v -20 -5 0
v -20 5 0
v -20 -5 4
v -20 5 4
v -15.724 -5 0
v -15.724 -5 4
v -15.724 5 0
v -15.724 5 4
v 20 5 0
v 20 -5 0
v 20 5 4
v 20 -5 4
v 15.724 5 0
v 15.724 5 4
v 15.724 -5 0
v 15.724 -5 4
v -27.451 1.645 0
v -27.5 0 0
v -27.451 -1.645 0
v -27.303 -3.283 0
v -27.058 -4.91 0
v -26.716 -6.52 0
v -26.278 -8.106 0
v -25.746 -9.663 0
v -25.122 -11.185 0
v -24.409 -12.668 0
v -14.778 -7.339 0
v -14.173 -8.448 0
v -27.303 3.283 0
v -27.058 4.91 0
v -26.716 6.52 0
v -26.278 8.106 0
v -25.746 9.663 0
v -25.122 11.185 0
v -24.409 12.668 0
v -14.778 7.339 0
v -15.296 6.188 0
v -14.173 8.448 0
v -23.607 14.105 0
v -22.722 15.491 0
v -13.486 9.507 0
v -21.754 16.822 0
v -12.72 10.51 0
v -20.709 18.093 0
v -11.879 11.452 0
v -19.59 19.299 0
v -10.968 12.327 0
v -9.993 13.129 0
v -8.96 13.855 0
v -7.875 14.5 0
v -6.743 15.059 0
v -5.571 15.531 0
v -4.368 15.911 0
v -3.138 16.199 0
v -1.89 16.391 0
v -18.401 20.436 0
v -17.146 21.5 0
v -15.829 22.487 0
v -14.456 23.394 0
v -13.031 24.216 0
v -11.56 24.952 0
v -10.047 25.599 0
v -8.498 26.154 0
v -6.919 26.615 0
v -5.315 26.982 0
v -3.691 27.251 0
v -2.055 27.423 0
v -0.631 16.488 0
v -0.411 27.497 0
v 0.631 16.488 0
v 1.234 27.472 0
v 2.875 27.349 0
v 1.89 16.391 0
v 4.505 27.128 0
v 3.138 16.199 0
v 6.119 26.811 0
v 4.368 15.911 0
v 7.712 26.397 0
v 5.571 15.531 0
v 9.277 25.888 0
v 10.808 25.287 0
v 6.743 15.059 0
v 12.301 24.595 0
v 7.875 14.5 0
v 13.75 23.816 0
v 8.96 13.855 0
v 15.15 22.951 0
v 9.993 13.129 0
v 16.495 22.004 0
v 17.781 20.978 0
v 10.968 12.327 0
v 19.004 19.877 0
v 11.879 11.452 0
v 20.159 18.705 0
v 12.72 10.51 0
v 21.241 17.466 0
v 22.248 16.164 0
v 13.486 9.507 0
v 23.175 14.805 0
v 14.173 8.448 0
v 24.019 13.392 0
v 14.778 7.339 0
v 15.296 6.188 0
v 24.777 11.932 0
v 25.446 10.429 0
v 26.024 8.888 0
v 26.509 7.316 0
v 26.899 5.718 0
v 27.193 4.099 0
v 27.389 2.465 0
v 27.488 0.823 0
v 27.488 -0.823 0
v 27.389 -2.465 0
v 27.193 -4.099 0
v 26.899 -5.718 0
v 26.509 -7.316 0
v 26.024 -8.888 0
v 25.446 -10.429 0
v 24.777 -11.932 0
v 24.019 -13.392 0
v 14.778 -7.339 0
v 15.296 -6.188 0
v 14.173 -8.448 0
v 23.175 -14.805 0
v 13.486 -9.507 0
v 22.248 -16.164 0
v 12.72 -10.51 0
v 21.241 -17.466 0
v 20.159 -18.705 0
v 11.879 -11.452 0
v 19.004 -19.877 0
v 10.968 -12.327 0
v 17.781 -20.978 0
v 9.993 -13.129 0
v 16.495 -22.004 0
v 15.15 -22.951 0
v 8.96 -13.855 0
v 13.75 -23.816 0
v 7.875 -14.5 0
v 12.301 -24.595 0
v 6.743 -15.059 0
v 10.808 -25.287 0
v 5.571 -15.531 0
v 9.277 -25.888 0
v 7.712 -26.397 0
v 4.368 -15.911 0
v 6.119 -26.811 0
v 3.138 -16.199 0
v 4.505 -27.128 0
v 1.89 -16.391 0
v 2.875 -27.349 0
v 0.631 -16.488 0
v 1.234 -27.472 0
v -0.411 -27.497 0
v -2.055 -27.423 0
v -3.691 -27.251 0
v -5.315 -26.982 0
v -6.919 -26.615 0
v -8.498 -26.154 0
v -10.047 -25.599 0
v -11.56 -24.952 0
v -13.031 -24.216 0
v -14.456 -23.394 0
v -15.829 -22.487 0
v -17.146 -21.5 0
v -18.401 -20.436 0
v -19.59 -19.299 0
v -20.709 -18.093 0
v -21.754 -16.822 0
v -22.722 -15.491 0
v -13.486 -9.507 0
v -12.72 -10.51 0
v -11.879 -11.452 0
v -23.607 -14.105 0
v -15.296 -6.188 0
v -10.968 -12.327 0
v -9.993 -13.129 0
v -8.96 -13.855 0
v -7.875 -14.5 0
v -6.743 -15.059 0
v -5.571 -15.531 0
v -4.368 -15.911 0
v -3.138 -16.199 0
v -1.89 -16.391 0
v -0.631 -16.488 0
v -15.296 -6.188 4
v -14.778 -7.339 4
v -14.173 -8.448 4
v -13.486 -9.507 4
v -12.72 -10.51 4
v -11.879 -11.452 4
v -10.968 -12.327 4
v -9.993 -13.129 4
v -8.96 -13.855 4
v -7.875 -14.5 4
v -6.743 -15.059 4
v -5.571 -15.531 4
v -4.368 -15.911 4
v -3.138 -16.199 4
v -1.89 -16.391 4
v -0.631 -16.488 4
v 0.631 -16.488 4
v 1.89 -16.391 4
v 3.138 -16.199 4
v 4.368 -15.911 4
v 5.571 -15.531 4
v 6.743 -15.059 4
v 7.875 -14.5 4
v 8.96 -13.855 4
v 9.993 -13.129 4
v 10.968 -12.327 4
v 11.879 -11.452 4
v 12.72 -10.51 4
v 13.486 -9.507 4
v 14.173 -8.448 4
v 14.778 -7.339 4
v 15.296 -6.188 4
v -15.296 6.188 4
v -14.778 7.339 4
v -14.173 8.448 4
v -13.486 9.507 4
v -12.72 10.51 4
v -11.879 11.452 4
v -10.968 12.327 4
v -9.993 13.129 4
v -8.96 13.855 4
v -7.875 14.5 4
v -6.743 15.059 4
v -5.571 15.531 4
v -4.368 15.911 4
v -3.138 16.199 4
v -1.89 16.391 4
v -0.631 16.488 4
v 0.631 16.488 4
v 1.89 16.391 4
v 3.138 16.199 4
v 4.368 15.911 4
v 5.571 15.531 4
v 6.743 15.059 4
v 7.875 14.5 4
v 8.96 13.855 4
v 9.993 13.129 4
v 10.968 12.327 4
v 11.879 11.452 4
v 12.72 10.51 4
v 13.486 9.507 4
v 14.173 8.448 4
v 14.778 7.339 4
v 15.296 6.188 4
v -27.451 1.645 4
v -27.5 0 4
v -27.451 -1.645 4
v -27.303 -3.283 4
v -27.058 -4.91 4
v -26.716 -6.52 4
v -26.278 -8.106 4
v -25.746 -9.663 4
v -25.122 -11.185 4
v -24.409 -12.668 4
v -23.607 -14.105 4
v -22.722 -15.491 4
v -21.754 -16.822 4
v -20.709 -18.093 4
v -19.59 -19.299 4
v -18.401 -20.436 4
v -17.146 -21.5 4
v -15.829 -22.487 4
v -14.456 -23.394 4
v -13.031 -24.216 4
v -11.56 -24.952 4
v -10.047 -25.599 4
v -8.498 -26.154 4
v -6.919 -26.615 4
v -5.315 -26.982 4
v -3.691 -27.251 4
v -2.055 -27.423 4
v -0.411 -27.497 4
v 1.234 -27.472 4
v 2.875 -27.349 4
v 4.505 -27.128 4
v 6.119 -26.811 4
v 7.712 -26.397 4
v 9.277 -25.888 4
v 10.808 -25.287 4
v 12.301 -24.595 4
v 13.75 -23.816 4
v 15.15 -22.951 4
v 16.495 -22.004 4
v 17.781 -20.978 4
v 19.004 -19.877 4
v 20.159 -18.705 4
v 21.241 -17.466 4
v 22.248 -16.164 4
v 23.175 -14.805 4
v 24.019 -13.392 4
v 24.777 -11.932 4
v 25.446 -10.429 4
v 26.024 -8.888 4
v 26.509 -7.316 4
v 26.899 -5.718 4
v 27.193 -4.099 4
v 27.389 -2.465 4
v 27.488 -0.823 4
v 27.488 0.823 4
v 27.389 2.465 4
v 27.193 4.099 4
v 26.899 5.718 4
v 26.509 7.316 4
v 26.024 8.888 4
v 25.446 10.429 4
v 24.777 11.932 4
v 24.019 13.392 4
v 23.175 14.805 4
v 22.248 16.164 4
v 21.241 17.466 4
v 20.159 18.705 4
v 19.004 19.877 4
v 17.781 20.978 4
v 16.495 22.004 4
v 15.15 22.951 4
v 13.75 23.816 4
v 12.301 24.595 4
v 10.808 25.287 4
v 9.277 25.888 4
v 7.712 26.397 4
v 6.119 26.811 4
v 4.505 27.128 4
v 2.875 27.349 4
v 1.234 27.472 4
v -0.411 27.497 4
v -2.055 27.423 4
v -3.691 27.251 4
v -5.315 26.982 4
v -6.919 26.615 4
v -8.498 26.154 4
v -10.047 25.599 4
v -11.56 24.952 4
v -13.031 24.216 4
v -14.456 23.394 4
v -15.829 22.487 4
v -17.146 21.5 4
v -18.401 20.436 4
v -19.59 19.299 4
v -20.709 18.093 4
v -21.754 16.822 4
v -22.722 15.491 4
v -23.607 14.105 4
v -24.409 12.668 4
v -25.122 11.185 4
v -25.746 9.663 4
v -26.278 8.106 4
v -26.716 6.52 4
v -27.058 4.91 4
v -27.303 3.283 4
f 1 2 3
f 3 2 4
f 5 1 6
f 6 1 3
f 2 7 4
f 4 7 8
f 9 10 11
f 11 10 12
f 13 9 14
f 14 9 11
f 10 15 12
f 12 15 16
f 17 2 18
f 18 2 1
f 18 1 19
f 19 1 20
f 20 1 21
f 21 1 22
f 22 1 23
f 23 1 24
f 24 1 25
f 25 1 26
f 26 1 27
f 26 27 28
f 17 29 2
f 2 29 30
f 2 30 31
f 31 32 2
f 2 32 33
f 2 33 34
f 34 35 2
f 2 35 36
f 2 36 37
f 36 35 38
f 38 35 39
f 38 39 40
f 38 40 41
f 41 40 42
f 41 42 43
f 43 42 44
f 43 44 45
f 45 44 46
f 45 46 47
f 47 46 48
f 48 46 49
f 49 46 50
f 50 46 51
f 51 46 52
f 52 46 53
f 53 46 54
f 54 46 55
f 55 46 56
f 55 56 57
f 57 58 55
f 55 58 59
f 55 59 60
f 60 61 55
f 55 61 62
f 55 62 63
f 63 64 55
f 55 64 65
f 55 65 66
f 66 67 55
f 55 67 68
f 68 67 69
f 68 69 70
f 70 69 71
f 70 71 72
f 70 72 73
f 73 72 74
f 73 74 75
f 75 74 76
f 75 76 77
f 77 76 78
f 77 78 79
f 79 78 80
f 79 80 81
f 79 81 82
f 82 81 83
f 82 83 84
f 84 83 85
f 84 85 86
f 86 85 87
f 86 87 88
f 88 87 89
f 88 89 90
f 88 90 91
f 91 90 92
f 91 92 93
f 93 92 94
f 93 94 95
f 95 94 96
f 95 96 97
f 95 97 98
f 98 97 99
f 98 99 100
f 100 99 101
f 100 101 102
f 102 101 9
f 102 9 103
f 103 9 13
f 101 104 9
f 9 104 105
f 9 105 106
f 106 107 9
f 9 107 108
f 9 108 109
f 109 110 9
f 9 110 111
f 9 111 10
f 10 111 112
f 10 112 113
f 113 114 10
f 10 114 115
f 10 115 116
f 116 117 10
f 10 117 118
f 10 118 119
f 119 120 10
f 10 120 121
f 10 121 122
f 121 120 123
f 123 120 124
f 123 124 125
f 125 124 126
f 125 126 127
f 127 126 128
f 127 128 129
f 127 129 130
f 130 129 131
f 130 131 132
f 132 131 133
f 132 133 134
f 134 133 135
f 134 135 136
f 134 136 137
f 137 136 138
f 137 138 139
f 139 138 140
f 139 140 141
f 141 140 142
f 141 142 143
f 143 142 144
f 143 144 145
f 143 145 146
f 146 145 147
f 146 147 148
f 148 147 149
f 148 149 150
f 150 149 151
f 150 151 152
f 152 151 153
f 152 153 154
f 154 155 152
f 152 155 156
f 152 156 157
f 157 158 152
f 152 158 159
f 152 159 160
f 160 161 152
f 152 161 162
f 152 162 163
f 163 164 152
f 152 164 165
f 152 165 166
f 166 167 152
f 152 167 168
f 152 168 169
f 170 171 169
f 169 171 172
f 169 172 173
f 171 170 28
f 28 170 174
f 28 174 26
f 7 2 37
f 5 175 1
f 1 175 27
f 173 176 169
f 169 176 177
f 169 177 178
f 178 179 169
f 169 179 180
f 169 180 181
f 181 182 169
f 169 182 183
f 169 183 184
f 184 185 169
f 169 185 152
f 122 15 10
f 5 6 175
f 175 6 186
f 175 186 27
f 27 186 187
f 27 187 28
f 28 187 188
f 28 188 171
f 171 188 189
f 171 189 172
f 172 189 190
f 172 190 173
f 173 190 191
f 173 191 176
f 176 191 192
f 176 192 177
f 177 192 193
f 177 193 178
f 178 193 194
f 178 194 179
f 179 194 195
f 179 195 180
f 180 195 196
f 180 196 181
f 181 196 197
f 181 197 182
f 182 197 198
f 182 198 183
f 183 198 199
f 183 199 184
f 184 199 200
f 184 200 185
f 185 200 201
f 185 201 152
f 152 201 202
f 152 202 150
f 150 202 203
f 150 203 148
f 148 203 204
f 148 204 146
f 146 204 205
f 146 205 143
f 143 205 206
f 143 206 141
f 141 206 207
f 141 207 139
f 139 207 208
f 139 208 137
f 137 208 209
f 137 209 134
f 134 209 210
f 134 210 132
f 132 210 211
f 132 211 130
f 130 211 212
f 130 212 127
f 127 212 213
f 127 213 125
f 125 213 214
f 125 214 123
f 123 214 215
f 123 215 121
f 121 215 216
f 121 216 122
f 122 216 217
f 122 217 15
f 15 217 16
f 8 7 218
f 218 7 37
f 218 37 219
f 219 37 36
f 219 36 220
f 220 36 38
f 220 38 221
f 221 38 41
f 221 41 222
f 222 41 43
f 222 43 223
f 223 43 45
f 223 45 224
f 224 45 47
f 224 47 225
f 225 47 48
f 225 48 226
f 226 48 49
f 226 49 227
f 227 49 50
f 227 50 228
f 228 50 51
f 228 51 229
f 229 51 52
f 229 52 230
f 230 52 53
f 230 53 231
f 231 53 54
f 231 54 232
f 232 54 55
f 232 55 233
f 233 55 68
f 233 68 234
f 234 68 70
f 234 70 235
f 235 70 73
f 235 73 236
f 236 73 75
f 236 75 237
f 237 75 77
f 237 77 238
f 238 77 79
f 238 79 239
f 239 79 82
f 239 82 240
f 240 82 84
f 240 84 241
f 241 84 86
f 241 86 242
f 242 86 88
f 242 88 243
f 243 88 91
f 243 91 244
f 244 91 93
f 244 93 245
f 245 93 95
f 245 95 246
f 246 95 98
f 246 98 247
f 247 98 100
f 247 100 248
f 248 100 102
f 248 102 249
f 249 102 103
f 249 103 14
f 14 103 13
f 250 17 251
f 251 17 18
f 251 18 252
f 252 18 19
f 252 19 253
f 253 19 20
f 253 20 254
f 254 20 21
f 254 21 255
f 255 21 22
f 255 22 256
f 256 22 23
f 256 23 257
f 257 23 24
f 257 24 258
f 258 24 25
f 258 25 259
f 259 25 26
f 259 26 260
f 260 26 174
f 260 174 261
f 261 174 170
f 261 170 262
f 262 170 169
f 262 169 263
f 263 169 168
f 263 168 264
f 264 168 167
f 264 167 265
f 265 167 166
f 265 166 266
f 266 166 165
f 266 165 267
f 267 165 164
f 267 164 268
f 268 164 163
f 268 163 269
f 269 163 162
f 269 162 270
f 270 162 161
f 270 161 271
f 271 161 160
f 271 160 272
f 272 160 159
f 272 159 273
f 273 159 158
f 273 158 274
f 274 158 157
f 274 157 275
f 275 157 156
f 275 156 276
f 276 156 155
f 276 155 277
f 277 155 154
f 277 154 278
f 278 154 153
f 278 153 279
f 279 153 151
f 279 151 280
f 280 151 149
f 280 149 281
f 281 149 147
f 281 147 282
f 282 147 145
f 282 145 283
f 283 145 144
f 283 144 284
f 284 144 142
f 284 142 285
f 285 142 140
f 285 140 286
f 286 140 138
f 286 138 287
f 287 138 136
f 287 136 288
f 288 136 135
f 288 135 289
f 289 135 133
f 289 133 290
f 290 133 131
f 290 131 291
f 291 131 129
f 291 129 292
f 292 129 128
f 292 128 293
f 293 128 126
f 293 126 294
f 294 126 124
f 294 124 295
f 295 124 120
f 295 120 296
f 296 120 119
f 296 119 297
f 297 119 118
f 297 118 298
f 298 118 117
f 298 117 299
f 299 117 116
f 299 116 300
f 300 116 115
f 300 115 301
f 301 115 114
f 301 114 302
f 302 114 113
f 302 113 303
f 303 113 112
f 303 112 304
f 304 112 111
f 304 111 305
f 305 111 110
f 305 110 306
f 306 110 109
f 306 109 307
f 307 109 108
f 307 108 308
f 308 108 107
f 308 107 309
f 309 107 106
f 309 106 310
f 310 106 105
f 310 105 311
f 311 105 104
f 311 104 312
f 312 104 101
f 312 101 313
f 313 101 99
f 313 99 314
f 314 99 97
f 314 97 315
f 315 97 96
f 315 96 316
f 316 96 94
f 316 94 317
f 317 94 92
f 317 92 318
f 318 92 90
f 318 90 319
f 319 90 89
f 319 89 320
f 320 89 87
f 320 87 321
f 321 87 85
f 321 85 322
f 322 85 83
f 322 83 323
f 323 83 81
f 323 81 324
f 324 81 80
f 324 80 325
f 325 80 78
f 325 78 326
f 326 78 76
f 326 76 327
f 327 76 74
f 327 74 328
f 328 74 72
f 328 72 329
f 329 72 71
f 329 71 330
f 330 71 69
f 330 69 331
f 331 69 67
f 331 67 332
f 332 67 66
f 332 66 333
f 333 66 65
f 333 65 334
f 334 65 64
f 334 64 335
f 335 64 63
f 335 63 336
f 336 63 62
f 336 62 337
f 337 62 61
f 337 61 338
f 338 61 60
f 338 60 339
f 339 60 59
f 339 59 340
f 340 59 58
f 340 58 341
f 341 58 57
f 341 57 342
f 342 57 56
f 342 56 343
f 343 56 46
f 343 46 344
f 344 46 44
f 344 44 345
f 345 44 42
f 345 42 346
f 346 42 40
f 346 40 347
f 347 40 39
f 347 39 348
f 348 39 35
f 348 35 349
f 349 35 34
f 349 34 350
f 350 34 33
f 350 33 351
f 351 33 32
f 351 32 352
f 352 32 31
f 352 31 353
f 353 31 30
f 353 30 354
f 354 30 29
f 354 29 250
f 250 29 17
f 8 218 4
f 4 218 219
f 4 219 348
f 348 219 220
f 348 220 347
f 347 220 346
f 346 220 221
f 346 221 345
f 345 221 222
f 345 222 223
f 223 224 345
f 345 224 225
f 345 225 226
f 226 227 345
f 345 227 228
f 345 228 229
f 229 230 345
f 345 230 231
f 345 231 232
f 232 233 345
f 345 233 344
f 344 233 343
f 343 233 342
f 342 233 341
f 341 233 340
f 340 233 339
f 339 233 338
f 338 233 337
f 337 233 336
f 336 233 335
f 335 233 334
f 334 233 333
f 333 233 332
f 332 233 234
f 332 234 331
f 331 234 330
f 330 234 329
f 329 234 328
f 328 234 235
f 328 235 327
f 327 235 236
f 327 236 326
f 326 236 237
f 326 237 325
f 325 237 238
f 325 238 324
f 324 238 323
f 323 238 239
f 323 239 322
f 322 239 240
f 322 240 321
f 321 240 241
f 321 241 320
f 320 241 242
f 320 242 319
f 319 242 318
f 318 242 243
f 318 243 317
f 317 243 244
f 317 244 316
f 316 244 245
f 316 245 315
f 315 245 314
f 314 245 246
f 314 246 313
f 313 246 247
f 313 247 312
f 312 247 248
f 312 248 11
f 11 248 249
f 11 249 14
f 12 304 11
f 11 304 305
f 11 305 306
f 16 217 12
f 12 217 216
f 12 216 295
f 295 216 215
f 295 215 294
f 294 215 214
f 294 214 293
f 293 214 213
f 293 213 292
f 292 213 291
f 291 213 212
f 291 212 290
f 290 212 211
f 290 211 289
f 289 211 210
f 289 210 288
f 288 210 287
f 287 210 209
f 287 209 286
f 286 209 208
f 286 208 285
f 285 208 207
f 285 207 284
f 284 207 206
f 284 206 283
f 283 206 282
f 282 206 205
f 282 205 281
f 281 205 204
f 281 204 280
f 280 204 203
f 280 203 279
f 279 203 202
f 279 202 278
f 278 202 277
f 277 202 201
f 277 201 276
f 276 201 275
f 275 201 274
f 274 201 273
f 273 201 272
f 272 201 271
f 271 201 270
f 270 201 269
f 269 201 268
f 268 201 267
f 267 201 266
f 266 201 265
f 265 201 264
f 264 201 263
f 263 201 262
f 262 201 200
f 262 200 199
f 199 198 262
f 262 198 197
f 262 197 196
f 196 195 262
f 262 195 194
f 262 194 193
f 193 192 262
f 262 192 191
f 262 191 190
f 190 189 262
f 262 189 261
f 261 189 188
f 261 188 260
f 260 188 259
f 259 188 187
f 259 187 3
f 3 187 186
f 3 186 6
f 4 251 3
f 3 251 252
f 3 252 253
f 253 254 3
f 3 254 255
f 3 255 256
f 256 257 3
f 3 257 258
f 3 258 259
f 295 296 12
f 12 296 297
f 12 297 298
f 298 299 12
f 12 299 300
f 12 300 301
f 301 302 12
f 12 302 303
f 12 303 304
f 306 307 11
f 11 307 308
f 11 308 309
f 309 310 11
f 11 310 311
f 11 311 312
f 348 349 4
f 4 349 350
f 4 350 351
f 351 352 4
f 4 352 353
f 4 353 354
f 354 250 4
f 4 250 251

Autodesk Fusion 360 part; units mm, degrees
sketch "Sketch1" plane through (0, 0, 0) normal (0, 0, 1) x (1, 0, 0)
  circle A0 centre (0, 0) radius 27.5
  circle A1 centre (0, 0) radius 16.5
  dimension "d1" = 55
  dimension "d2" = 33
extrude "Extrude1" add sketch "Sketch1" along normal blind 4
sketch "Sketch2" plane through (0, 0, 4) normal (0, 0, 1) x (-1, 0, 0)
  circle A0 centre (0, 0) radius 16.5
  circle A1 centre (0, 0) radius 27.5
  line L0 (20, -5) -> (-20, -5)
  line L1 (-20, -5) -> (-20, 5)
  line L2 (-20, 5) -> (20, 5)
  line L3 (20, 5) -> (20, -5)
extrude "Extrude2" cut sketch "Sketch2" against normal blind 15 contours A0 L0 L2 L3 | A0 L0 L1 L2
